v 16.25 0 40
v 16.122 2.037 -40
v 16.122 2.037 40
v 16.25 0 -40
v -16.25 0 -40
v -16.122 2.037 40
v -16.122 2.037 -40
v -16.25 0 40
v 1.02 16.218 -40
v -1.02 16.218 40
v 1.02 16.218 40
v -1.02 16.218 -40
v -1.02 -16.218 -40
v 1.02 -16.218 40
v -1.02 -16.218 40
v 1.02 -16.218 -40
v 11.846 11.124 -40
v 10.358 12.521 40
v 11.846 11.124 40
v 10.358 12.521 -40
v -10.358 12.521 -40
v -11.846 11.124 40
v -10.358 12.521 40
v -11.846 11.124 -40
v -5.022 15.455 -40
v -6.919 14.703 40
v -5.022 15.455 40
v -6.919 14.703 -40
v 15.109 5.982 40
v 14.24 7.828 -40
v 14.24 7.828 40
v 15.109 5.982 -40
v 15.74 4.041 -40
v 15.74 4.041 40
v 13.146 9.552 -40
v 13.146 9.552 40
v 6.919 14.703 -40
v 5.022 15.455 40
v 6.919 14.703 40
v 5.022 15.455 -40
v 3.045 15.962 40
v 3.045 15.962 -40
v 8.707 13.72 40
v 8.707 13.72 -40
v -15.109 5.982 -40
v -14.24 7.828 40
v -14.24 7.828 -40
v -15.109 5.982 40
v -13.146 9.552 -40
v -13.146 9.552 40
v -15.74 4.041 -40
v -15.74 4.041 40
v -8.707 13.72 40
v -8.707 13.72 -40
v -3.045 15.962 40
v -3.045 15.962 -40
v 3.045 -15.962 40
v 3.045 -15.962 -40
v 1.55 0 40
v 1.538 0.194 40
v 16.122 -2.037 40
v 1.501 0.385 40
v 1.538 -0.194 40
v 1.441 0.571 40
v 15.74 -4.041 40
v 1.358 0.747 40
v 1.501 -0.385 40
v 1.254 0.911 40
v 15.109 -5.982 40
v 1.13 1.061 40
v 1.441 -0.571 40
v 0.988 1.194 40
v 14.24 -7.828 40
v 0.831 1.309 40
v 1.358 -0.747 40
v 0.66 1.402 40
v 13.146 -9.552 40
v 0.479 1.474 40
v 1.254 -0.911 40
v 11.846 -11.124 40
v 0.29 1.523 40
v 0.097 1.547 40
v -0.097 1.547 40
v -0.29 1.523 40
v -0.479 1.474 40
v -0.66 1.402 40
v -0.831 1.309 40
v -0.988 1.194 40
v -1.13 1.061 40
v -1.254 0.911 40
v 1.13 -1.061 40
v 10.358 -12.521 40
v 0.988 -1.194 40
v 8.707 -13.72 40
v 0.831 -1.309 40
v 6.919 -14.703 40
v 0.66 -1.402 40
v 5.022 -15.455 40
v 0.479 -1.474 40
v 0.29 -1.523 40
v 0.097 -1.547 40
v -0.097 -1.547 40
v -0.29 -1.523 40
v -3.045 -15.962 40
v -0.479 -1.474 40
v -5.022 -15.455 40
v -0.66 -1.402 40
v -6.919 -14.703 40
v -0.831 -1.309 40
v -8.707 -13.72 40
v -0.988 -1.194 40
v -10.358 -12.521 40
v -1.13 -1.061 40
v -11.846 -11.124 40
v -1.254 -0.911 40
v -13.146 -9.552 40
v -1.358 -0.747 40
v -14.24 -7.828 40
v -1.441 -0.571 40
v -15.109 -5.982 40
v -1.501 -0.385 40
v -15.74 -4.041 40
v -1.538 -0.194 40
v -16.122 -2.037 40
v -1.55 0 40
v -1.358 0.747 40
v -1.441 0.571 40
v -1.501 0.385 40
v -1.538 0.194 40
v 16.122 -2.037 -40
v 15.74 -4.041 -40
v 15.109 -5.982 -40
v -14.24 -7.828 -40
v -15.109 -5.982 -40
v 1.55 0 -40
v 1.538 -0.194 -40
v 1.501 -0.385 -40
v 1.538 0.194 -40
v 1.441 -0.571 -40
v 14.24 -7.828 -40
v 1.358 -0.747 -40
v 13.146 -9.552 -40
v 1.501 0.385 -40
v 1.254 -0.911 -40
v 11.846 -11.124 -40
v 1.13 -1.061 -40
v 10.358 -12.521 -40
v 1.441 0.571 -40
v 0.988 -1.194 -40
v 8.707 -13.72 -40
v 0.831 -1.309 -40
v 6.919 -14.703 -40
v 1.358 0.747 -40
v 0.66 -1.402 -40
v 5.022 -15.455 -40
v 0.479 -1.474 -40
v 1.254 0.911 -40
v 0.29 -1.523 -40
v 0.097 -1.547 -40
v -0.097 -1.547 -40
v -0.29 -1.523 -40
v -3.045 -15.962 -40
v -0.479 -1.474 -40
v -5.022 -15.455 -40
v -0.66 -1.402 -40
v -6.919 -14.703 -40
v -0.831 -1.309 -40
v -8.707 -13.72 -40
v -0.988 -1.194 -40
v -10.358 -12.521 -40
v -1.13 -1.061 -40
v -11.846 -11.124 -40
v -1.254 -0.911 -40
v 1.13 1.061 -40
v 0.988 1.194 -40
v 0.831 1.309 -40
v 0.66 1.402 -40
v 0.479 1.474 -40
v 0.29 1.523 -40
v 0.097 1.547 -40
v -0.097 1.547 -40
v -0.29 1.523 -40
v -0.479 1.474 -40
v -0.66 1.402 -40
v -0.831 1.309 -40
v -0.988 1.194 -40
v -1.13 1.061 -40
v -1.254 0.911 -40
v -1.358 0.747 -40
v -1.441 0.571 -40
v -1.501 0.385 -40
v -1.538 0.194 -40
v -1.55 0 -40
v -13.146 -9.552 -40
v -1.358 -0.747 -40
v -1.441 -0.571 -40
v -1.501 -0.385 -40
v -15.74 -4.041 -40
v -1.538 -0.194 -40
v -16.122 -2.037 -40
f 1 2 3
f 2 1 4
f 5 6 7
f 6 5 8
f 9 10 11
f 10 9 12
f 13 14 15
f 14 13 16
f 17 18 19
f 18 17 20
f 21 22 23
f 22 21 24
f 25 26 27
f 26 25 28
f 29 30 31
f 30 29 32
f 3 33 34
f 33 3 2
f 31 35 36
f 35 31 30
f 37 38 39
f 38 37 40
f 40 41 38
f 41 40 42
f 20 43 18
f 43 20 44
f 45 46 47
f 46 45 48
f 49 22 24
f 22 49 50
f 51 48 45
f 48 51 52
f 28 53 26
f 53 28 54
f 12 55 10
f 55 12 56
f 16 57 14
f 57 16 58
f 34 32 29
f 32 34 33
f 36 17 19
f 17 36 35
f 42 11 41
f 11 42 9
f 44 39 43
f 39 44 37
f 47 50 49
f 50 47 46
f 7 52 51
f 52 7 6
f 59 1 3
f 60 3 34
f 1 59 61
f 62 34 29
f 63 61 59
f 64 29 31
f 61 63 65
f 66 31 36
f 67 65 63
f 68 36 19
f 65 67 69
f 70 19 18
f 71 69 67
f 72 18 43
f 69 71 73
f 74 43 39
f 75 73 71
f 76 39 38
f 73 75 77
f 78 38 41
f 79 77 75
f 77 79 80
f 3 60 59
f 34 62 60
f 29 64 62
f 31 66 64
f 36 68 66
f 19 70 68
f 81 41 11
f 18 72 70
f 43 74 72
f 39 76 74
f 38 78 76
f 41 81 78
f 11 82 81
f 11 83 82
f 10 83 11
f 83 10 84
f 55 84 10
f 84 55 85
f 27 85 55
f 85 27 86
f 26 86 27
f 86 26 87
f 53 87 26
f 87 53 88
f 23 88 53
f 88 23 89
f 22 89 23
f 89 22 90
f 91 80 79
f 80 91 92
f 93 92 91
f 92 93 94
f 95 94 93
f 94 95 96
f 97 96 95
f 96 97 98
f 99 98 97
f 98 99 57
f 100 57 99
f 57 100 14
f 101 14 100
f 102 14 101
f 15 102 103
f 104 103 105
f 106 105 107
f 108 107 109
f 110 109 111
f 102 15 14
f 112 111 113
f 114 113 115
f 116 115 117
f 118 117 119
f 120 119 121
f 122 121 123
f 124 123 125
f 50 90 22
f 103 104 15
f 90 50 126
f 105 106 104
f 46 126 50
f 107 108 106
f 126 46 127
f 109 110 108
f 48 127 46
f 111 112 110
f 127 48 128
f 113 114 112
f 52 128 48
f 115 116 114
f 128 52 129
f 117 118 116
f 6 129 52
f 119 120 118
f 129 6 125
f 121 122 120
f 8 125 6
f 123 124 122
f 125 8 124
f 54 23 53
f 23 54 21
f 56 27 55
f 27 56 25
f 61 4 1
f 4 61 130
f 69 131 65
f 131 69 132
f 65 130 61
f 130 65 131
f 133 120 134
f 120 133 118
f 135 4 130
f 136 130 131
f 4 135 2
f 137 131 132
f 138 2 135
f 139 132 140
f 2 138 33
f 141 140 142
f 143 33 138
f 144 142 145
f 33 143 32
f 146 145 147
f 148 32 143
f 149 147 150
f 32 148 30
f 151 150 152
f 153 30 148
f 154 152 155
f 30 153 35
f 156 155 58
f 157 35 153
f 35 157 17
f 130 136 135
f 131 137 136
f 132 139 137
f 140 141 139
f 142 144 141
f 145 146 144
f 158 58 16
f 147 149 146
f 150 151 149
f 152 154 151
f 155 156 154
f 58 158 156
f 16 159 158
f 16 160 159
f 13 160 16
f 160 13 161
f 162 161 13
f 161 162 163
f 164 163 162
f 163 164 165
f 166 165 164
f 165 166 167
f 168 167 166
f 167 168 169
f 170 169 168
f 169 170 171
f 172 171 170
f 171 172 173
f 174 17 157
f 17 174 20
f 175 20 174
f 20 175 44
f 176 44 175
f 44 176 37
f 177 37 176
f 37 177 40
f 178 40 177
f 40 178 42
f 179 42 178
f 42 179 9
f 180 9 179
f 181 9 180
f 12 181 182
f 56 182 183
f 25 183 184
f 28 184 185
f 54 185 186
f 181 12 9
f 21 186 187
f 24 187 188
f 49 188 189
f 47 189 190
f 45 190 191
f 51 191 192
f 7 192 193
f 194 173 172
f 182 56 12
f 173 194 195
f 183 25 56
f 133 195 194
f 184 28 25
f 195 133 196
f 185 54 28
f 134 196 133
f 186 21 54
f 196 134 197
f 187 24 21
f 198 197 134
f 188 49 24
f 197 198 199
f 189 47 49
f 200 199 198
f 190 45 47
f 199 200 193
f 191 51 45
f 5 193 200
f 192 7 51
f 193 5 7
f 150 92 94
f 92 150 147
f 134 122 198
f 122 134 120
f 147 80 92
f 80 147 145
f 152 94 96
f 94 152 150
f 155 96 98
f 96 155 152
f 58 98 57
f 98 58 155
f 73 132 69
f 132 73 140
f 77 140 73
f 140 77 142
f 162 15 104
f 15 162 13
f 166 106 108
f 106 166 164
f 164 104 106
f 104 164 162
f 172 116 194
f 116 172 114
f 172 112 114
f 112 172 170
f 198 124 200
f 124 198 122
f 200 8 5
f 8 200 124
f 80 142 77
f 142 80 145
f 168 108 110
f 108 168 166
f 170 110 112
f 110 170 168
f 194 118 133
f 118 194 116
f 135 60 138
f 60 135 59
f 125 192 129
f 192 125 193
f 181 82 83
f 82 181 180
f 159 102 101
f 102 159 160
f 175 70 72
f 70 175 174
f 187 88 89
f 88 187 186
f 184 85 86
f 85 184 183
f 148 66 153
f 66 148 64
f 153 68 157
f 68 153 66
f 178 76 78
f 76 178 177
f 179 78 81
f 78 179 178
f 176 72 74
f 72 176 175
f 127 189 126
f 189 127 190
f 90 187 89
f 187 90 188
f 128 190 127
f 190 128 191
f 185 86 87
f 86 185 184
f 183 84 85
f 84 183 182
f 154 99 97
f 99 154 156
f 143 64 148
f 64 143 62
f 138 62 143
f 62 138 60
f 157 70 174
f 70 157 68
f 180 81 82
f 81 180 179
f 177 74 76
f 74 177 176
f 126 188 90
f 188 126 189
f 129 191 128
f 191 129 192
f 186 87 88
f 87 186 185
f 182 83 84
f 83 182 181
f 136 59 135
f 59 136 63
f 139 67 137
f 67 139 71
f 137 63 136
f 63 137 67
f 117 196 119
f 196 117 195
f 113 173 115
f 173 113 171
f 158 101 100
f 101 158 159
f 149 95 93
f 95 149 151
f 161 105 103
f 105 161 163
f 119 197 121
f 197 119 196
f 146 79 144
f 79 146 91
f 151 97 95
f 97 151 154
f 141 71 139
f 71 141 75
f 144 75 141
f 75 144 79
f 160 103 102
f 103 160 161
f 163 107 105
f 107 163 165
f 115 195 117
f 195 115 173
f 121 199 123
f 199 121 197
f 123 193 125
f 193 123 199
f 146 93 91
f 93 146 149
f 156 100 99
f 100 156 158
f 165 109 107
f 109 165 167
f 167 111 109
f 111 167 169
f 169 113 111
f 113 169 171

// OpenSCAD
$fn = 50;


difference() {
	union() {
		translate(v = [0, 0, -40.0000000000]) {
			cylinder(h = 80, r = 16.2500000000);
		}
	}
	union() {
		translate(v = [0, 0, -100.0000000000]) {
			cylinder(h = 200, r = 1.5500000000);
		}
	}
}
